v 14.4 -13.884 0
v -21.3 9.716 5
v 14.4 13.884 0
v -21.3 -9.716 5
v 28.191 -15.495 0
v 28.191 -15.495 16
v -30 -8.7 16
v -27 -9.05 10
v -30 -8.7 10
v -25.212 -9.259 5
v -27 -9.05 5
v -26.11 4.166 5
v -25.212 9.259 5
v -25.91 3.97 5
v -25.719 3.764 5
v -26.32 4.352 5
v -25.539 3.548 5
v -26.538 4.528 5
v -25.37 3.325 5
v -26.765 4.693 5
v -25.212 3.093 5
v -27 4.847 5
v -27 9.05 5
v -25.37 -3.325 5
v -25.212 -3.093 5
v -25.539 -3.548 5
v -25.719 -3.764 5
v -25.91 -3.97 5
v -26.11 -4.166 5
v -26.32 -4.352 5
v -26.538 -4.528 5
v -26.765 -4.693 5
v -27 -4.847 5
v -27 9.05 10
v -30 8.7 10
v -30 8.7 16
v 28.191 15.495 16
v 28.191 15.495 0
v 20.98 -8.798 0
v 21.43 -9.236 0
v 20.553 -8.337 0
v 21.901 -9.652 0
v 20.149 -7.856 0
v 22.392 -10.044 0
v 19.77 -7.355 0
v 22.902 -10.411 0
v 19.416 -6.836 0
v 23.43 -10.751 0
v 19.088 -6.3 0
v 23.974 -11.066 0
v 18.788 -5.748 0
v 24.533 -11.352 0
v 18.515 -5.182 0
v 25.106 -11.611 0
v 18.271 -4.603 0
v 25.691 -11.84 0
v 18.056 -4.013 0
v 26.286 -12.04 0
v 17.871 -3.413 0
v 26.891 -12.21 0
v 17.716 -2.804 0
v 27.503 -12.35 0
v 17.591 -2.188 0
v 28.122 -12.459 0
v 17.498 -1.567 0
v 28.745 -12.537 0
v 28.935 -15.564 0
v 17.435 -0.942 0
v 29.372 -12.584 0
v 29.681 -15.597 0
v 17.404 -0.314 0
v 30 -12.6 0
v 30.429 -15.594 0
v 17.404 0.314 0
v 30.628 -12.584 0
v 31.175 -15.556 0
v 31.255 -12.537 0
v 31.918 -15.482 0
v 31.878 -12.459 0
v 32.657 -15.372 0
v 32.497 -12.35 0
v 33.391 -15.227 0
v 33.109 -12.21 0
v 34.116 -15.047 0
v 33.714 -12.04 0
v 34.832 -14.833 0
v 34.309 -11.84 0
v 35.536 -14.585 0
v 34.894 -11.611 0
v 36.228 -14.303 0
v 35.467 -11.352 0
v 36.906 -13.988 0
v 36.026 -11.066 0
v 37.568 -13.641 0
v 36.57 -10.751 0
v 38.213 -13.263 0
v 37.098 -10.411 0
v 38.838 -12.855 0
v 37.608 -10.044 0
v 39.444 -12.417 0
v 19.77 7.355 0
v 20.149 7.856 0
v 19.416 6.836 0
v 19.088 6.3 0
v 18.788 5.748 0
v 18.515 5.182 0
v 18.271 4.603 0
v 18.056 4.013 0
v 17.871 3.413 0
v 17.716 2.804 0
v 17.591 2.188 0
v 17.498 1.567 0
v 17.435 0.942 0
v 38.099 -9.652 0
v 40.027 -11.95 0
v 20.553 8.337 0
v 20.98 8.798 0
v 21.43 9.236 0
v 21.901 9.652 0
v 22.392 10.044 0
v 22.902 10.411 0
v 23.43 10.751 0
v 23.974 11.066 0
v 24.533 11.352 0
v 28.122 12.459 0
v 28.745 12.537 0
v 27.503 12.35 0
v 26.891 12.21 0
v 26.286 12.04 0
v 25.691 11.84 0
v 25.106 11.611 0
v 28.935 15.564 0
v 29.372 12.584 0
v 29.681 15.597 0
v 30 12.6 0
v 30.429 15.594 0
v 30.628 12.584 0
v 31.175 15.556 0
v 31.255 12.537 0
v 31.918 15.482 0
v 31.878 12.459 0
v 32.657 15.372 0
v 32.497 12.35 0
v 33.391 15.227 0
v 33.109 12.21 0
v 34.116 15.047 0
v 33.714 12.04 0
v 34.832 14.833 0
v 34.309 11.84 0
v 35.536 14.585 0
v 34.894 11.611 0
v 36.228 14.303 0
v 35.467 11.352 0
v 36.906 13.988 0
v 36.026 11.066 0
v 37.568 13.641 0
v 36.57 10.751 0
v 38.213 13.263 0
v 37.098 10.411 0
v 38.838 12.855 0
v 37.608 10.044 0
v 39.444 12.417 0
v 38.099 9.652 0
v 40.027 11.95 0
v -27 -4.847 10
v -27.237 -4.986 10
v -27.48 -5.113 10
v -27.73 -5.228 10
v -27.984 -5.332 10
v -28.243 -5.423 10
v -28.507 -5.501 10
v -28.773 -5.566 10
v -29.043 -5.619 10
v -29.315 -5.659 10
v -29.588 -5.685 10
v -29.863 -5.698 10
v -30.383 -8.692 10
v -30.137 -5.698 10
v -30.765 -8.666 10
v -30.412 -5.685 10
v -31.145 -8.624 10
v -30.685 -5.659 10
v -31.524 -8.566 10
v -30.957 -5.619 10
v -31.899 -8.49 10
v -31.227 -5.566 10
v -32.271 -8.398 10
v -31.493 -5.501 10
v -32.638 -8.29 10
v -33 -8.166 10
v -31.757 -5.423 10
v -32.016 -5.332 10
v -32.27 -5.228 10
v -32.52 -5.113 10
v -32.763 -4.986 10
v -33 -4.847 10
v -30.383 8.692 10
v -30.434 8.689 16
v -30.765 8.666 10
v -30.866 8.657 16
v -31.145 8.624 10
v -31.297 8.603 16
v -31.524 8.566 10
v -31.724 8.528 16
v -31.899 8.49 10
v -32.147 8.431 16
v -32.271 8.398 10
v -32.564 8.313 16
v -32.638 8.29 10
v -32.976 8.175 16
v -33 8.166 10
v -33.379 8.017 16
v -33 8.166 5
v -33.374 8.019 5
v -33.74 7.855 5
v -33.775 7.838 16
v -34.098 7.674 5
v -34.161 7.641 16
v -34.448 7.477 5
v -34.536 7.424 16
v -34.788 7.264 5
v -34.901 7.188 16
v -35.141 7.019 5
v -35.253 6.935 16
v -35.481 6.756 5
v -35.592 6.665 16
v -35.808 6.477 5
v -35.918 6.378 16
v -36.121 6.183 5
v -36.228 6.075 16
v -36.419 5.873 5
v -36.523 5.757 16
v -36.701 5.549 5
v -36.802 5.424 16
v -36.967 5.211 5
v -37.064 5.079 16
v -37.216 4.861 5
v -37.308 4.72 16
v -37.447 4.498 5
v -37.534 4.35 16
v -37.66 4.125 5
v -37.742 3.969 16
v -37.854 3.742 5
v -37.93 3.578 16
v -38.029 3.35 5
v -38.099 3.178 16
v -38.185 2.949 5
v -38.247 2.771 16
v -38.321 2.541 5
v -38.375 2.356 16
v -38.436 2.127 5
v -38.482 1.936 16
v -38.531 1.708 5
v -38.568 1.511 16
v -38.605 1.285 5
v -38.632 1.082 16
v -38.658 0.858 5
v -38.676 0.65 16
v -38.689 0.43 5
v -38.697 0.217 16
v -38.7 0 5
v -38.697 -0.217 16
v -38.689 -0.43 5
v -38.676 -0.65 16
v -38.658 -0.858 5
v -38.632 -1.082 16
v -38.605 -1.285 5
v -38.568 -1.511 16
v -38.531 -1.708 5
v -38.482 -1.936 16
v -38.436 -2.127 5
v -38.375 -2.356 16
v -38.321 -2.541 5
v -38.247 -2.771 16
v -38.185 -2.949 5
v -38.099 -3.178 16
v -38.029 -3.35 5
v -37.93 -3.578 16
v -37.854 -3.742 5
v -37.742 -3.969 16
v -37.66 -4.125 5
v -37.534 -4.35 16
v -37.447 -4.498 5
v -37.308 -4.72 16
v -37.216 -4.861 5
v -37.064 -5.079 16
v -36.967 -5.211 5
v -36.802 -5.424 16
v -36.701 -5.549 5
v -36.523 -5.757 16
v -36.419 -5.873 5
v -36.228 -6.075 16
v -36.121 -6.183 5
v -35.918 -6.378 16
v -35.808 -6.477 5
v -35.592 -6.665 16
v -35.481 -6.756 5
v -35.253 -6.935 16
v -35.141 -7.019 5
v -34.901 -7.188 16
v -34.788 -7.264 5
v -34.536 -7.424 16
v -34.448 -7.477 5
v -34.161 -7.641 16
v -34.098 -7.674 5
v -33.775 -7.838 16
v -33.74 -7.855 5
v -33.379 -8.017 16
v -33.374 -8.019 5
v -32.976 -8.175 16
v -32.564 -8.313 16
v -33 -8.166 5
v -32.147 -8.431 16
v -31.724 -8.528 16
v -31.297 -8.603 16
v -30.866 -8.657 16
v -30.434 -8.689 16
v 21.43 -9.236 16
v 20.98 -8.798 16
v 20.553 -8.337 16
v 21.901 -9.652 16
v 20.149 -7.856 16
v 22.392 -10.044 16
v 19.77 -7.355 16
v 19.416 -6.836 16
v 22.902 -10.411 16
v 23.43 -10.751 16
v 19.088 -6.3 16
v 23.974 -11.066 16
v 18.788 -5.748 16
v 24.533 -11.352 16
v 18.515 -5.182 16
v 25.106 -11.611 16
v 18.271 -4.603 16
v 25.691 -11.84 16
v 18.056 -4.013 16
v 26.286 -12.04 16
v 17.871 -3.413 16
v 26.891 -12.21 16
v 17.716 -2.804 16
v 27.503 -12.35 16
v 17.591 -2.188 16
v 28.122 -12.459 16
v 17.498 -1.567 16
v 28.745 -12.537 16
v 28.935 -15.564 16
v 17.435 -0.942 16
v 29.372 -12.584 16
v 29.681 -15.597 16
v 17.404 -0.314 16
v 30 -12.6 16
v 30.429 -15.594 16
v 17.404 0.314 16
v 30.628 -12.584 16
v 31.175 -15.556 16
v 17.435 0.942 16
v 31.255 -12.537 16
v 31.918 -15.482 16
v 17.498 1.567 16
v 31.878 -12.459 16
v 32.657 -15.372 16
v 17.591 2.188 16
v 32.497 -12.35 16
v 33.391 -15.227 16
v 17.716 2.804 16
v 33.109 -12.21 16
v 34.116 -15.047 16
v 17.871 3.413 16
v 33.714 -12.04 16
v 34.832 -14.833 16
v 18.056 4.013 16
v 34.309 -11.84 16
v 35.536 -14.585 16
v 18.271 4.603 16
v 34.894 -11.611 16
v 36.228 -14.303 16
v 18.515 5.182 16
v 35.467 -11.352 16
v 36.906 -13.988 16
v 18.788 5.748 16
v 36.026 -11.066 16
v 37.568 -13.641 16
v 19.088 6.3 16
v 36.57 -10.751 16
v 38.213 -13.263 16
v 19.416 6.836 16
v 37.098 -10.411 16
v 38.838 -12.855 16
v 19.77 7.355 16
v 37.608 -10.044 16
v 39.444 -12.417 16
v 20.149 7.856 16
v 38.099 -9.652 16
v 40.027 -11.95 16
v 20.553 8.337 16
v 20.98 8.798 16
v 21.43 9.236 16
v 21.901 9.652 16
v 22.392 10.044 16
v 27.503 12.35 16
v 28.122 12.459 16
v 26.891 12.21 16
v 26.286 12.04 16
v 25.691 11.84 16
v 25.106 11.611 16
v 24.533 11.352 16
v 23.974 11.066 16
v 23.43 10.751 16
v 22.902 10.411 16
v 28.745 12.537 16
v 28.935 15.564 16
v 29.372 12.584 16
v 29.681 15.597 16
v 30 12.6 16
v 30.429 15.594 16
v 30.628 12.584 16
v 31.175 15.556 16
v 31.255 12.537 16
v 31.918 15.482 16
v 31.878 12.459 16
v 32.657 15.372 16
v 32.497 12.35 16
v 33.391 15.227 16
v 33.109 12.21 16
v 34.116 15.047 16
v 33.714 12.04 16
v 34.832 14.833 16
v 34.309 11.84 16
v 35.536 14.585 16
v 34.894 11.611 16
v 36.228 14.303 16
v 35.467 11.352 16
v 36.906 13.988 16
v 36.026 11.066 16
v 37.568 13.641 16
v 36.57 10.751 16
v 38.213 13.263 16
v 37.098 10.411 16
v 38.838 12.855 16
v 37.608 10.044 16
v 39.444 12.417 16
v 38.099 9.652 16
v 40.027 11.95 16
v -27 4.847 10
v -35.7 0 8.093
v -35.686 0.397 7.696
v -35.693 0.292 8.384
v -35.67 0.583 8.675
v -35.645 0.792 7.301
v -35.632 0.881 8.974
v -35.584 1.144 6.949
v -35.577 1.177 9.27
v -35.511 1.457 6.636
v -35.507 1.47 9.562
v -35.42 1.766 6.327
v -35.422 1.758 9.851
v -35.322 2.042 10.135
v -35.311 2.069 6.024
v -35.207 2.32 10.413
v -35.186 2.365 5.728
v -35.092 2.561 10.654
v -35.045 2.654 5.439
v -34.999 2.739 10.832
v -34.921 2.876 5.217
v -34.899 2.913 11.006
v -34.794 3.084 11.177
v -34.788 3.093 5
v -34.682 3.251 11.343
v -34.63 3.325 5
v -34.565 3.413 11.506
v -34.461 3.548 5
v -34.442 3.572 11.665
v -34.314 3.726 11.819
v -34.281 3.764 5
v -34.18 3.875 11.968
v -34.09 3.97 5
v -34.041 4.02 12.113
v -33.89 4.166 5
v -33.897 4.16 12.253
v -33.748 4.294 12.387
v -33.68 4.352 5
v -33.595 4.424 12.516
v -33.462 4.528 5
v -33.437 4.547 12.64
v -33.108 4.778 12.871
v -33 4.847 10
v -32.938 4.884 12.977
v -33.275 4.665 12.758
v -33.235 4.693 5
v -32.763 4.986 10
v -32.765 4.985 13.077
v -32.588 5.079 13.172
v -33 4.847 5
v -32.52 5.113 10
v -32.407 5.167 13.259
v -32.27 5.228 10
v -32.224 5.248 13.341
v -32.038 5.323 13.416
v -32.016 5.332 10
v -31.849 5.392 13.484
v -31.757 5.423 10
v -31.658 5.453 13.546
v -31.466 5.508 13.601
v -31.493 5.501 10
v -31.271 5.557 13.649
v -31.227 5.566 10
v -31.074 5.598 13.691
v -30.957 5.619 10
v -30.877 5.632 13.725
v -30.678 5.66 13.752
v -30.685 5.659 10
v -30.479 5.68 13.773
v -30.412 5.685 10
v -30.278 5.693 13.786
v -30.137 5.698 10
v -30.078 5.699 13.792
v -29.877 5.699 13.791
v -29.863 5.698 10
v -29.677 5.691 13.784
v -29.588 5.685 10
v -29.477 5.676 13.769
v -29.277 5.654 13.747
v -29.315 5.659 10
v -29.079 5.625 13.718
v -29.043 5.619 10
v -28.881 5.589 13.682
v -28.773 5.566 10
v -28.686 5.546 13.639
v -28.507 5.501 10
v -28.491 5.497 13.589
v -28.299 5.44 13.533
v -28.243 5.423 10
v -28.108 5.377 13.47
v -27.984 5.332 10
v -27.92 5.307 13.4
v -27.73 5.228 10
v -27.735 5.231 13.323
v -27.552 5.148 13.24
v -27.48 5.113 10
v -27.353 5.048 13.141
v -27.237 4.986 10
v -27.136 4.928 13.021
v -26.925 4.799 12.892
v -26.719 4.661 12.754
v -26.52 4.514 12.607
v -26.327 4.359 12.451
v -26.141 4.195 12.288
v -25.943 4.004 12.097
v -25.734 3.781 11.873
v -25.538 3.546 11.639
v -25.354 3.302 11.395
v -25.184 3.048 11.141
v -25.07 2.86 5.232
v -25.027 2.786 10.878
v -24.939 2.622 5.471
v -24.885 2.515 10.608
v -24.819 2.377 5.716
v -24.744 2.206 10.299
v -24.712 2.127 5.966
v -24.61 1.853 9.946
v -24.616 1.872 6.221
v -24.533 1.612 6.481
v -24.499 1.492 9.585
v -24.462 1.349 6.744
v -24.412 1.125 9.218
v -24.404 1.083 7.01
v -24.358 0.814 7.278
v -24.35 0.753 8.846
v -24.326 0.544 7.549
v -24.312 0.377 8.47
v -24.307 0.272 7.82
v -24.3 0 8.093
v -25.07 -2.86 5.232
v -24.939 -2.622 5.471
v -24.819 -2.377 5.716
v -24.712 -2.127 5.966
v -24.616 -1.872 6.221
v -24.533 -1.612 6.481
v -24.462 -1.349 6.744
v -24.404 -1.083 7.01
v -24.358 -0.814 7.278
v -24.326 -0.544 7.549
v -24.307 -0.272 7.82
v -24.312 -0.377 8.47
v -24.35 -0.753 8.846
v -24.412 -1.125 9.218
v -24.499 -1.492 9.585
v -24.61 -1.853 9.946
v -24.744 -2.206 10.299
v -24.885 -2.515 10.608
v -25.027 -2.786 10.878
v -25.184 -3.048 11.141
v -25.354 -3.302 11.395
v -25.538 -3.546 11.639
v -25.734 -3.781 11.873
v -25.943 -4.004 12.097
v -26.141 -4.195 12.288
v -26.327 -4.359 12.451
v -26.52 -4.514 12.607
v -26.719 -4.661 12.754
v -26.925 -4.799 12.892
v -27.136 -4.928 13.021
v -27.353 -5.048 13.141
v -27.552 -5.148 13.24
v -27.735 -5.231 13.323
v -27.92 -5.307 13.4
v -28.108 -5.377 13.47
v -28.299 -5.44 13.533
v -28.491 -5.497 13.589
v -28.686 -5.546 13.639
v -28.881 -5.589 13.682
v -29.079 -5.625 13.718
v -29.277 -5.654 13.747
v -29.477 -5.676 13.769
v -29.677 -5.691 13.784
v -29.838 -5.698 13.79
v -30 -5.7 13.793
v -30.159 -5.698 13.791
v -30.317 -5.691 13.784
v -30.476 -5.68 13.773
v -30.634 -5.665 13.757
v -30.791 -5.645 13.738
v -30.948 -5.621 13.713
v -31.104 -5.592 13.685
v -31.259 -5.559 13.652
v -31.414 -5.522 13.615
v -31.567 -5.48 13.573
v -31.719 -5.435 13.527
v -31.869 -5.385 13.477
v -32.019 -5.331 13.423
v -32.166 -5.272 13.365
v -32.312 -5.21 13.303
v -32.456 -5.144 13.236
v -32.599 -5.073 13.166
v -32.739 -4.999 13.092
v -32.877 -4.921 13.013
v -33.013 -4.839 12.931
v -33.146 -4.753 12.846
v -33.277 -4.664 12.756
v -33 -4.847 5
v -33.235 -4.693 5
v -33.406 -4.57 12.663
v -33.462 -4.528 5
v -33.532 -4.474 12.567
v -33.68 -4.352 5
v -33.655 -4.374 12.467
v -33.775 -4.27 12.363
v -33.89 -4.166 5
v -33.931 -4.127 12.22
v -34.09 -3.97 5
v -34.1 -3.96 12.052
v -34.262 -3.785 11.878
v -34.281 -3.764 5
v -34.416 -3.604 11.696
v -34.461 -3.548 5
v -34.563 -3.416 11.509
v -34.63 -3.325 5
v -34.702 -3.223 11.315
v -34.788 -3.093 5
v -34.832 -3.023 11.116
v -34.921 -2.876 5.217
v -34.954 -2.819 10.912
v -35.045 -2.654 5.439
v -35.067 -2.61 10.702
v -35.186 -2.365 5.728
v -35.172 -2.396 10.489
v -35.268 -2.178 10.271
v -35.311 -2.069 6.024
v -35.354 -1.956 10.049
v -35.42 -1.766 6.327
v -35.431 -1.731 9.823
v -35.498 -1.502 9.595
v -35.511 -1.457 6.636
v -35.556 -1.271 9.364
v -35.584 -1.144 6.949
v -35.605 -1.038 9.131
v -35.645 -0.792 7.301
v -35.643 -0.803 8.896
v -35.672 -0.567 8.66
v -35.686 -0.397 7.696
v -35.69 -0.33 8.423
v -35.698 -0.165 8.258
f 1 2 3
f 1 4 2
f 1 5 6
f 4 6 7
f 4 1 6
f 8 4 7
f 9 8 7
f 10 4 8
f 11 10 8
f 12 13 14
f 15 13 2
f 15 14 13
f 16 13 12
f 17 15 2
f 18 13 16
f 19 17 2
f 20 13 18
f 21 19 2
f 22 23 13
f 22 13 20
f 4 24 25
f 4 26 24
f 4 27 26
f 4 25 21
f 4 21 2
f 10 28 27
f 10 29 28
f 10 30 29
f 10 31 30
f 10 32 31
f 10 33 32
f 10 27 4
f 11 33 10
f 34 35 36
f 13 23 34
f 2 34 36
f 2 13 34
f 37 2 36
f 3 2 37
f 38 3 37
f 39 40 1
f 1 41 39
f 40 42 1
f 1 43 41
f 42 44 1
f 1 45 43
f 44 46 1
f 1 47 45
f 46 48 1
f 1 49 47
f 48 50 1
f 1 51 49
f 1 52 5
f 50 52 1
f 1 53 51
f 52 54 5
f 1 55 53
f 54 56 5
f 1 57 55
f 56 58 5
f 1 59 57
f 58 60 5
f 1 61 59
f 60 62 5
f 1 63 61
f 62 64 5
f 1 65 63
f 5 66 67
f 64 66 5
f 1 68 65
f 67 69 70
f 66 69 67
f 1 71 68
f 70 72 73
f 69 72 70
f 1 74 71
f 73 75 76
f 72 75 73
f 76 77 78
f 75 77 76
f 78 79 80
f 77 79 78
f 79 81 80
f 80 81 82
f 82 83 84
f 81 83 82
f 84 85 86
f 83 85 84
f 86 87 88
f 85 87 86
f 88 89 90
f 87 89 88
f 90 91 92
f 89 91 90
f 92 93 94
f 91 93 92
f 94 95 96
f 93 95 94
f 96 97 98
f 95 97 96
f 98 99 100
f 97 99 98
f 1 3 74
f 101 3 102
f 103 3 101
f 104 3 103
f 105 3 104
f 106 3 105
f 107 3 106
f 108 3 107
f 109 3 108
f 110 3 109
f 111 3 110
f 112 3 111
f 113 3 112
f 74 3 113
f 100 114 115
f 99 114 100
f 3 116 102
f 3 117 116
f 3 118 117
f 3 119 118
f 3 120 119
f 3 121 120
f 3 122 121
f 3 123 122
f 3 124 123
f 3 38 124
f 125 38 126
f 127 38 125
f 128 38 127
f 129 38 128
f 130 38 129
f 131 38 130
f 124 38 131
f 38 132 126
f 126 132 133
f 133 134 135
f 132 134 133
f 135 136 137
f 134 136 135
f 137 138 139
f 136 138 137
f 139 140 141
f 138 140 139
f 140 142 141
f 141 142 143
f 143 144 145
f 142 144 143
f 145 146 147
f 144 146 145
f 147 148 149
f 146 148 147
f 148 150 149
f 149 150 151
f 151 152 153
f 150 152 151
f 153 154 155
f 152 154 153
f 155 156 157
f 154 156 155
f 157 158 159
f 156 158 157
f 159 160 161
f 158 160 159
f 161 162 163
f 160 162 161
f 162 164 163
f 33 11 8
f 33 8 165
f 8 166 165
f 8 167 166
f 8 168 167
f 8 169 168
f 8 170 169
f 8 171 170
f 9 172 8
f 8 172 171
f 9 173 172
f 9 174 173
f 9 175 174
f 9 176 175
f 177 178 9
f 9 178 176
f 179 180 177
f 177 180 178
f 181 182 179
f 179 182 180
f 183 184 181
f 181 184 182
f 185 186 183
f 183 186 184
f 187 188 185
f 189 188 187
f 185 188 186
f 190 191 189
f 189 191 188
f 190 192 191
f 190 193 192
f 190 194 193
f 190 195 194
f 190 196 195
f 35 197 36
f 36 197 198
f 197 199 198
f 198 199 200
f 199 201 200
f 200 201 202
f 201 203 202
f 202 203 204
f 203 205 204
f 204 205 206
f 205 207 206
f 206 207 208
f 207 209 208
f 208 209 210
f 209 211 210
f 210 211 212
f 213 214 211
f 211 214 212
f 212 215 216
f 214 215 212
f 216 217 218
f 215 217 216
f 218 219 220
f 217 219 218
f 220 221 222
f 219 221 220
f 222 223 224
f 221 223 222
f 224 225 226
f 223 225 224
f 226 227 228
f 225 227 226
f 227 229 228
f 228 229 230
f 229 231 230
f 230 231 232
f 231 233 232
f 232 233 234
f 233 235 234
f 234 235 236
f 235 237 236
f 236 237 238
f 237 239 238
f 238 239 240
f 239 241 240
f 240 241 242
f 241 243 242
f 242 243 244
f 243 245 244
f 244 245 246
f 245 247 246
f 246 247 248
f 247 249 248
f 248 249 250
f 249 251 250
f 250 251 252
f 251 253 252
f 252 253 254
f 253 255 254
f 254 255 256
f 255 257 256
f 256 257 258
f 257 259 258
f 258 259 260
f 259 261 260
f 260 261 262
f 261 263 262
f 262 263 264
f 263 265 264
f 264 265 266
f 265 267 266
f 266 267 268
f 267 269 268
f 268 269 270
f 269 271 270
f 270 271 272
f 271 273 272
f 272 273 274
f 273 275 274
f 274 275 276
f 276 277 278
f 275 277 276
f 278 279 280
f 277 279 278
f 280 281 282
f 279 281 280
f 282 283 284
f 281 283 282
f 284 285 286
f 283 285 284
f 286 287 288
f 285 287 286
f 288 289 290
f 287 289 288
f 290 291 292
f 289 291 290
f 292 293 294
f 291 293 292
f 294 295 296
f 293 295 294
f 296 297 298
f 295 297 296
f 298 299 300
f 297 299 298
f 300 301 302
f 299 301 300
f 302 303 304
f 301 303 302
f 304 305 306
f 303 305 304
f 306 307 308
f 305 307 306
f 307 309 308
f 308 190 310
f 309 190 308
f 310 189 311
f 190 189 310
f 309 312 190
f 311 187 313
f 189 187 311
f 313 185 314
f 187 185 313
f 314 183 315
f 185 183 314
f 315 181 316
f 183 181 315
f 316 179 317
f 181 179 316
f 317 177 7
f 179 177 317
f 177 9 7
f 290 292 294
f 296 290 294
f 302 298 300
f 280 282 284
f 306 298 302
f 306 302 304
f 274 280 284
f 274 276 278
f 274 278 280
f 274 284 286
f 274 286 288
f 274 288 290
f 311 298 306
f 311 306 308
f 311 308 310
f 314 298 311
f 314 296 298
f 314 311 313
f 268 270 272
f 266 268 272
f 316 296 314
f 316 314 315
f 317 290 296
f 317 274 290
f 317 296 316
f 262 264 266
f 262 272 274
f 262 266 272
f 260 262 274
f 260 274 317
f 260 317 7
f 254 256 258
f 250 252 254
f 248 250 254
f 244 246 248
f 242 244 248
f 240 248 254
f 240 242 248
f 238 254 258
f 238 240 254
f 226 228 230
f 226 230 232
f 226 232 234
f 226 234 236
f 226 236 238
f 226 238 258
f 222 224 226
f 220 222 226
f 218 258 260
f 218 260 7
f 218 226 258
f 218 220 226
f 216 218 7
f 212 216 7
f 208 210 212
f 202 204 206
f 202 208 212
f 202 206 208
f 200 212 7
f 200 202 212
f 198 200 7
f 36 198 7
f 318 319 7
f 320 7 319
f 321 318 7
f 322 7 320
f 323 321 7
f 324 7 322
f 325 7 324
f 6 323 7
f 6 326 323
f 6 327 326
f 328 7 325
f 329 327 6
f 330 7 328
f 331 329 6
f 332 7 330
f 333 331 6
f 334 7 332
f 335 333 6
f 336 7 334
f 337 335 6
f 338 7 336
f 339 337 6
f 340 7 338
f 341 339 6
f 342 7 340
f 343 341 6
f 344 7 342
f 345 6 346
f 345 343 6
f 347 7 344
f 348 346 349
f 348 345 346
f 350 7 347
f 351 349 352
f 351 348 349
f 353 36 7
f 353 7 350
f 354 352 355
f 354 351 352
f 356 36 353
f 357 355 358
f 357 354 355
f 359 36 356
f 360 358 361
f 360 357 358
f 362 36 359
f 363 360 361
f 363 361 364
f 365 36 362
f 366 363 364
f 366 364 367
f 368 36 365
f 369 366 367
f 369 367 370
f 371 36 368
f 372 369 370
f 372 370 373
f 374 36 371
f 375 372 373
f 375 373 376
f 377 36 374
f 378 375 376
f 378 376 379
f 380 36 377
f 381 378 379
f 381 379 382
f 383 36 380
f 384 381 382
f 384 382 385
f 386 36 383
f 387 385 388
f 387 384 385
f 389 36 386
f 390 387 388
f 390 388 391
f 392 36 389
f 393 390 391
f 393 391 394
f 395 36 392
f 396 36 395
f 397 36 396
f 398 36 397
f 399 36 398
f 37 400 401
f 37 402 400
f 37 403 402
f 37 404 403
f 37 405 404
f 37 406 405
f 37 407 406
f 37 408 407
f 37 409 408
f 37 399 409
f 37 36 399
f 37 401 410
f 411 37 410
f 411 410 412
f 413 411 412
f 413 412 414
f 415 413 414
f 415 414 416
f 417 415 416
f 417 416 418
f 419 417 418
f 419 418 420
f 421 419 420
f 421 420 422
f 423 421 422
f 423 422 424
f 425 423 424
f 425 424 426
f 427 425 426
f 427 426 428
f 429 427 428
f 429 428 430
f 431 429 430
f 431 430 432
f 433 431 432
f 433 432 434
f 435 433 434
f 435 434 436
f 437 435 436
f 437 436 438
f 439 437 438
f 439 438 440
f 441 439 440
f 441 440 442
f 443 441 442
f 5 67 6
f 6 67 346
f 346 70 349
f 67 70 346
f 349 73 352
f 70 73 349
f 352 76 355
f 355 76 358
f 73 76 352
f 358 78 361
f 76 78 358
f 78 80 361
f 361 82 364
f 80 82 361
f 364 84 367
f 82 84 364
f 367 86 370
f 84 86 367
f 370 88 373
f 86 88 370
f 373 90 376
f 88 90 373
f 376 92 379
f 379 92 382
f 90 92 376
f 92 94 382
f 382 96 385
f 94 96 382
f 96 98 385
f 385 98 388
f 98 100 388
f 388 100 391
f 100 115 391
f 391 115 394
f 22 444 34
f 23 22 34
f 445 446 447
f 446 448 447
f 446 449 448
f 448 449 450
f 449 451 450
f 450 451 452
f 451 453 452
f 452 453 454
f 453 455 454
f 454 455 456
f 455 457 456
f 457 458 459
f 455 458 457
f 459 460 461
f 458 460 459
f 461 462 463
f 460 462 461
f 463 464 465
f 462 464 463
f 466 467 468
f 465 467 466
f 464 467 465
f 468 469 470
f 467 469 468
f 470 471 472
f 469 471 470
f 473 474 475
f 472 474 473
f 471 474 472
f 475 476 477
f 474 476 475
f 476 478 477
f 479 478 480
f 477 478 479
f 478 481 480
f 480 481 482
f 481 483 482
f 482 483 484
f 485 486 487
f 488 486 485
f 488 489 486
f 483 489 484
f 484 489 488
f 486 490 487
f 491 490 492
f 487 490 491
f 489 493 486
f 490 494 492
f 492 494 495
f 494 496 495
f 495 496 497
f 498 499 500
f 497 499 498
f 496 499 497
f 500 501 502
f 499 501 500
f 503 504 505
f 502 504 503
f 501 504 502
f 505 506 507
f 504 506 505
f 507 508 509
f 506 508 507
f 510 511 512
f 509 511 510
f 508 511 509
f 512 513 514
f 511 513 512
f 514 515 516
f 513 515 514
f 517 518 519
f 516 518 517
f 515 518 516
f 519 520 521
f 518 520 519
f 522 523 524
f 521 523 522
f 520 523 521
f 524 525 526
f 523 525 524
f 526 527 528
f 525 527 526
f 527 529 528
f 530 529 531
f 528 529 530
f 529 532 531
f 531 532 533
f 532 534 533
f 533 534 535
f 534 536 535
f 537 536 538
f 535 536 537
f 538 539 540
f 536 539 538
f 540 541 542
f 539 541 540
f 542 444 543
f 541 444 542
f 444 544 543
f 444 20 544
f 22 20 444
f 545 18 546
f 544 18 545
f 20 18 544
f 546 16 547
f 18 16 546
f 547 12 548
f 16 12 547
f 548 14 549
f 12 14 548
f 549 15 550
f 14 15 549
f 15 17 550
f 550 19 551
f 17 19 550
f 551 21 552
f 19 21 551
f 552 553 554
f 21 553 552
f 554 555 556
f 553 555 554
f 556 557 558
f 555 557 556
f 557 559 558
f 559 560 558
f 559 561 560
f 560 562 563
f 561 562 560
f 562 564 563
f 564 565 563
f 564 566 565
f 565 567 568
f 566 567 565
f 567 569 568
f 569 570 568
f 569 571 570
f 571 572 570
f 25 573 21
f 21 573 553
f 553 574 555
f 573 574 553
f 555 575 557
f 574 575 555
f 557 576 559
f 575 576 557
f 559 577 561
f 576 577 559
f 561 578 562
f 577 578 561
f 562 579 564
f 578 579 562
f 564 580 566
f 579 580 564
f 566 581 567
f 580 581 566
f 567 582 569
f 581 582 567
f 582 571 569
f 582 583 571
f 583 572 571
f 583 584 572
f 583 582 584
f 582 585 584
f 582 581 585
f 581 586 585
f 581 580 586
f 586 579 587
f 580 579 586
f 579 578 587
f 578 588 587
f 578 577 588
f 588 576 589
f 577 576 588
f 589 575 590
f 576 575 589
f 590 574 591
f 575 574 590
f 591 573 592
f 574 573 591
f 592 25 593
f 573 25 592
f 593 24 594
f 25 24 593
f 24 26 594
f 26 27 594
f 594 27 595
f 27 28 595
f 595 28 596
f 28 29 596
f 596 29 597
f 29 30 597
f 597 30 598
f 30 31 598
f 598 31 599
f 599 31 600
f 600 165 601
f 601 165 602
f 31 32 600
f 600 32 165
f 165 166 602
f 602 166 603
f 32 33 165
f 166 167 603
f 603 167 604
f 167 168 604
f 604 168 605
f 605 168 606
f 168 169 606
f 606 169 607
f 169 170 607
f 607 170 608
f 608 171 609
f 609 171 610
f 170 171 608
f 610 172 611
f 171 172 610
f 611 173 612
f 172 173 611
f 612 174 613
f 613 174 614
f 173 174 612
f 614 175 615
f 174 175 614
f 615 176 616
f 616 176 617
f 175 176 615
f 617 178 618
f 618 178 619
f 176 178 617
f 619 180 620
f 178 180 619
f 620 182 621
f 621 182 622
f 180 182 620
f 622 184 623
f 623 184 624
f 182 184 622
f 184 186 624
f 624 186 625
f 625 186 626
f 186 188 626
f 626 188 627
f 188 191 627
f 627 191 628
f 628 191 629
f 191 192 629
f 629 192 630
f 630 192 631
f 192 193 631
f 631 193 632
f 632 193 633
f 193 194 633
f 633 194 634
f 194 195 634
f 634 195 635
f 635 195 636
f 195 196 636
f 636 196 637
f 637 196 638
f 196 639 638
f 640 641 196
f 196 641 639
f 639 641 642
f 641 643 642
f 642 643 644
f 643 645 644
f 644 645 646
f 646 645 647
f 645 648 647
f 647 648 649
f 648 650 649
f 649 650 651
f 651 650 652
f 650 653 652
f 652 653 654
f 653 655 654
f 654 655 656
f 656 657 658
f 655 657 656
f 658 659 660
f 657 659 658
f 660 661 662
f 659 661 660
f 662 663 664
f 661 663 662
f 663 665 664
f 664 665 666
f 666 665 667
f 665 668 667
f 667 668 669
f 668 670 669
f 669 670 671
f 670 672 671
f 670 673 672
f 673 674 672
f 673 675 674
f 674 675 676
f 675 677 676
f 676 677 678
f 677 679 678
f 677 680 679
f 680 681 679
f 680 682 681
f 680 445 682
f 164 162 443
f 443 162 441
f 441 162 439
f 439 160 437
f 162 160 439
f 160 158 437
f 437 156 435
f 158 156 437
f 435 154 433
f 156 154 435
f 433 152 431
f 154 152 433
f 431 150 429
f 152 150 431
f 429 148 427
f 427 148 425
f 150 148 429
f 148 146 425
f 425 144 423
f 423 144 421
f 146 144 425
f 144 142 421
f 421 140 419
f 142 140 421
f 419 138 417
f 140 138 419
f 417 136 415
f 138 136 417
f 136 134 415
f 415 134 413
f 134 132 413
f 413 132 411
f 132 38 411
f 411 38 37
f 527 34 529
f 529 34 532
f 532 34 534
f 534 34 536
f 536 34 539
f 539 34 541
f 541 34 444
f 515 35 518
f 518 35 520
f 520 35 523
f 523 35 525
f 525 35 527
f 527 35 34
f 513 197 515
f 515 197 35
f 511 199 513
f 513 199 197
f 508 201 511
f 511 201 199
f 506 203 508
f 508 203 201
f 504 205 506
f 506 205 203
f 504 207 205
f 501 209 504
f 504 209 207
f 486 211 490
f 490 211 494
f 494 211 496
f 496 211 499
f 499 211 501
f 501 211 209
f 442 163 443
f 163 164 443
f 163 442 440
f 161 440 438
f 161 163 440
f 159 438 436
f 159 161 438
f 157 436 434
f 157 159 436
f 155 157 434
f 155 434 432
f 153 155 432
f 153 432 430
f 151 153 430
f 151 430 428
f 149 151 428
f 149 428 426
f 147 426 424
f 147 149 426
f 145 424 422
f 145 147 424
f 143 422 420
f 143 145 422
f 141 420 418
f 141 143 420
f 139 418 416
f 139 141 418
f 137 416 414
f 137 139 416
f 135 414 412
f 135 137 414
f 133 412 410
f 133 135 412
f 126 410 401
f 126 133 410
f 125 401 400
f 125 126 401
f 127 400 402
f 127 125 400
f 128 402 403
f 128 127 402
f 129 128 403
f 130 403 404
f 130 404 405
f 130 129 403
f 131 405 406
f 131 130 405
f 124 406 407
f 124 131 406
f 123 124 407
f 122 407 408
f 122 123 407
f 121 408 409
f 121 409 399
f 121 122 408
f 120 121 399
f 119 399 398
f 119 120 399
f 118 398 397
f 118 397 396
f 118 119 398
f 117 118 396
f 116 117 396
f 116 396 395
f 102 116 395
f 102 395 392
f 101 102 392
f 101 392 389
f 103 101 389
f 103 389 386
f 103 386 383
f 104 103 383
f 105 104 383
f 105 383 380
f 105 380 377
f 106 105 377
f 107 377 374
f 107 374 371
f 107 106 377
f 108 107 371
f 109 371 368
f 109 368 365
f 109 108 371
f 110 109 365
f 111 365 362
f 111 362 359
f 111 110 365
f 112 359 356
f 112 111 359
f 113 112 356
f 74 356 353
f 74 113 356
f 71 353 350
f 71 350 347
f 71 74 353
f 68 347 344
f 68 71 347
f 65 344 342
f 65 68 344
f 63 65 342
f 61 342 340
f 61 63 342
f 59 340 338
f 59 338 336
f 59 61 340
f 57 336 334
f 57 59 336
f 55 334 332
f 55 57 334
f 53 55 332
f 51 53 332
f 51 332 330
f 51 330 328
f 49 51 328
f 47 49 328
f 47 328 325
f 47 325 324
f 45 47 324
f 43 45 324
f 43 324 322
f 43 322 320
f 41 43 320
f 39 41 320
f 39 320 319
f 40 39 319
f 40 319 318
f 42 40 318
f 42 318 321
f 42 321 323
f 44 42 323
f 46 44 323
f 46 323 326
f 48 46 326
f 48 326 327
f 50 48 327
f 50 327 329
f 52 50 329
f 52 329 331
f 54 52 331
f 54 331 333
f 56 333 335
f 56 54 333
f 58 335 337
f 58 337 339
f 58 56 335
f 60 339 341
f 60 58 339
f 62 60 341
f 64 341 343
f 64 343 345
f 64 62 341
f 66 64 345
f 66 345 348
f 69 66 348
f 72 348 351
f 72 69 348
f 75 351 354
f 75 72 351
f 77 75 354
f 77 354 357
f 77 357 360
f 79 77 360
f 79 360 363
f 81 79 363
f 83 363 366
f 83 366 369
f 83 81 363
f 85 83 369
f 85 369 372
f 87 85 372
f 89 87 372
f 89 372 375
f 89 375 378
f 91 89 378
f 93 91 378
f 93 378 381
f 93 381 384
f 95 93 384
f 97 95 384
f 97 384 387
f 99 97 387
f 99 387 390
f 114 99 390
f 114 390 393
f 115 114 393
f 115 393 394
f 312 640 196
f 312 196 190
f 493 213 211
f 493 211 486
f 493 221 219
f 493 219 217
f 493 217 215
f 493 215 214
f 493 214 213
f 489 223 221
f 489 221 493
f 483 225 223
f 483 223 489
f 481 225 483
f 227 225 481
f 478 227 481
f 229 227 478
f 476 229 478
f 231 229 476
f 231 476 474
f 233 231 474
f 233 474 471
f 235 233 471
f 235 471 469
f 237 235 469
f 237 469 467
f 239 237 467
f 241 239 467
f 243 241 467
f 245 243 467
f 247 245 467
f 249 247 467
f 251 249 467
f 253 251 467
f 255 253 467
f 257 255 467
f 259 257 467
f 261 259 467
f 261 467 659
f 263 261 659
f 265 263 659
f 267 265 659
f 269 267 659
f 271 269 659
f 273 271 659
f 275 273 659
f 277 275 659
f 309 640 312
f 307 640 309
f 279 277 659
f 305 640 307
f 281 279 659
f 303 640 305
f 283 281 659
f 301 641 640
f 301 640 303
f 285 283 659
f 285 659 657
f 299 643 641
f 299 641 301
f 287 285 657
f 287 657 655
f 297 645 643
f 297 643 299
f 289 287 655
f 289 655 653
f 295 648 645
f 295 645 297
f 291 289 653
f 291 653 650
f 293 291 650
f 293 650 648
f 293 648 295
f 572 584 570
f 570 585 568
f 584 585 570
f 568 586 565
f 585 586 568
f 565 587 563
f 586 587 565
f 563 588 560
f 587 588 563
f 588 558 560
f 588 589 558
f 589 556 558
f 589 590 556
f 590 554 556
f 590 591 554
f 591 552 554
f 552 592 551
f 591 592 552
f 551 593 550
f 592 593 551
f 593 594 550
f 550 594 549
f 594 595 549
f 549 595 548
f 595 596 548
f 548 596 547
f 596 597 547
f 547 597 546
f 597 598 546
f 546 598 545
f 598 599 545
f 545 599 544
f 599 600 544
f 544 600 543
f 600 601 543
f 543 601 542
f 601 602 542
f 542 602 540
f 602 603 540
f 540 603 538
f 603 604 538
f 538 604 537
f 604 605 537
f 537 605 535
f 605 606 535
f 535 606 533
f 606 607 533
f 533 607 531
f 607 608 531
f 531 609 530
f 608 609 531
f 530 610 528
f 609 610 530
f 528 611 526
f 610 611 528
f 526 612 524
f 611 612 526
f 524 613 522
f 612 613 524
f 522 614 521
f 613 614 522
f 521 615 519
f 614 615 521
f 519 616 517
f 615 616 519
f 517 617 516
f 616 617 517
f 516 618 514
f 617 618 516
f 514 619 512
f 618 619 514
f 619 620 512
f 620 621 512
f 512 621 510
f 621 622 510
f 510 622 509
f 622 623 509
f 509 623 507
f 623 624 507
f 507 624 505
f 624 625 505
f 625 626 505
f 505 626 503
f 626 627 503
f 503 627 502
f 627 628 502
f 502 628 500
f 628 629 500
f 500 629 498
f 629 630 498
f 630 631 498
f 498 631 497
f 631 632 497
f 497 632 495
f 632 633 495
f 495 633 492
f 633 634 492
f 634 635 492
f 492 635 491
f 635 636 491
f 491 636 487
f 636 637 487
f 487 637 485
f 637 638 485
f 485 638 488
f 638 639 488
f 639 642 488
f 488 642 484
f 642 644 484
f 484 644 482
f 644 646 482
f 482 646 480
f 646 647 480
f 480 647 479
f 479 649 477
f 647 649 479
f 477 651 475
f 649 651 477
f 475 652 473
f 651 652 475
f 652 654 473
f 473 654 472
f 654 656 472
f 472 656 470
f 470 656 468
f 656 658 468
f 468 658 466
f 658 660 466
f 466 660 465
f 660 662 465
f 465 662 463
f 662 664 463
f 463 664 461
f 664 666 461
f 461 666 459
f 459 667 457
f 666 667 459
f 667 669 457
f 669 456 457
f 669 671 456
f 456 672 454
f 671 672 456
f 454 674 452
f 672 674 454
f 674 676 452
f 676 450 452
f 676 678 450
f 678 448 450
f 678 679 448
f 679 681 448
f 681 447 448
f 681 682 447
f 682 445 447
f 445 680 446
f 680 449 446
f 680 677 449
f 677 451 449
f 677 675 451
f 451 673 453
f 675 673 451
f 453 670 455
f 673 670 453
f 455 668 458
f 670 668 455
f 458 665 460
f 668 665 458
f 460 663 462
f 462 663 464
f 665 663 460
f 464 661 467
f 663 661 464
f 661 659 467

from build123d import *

# Parameters (mm, degrees)
SKETCH_R          = 12.6
PAD_DEPTH         = 16
POCKET_DEPTH      = 20
POCKET_DEPTH_BACK = 20
POCKET001_DEPTH   = 16.001
SKETCH003_R       = 5.7
PAD001_DEPTH      = 11
SKETCH004_W       = 6
SKETCH004_H       = 22.8
POCKET002_DEPTH   = 5


with BuildPart() as part:
    # Sketch → Pad (new body)
    with BuildSketch(Plane.XY):
        with BuildLine():
            ThreePointArc((-30, 8.7), (-38.7, 0), (-30, -8.7))
            Line((-30, -8.7), (28.190735, -15.494727))
            ThreePointArc((28.190735, -15.494727), (45.6, 0), (28.190735, 15.494727))
            Line((-30, 8.7), (28.190735, 15.494727))
        make_face()
        with Locations((30, 0)):
            Circle(SKETCH_R, mode=Mode.SUBTRACT)
    extrude(amount=PAD_DEPTH)

    # Sketch001 → Pocket (cut, two sides)
    with BuildSketch(Plane.XZ) as pocket_sk:
        with BuildLine():
            Line((14.4, 0), (-21.3, 5))
            Line((-21.3, 5), (-25.212, 5))
            ThreePointArc((-25.212, 5), (-30, 13.792742), (-34.788, 5))
            Line((-34.788, 5), (-38.7, 5))
            Line((-38.7, 5), (-38.7, 0))
            Line((-38.7, 0), (14.4, 0))
        make_face()
    extrude(amount=-POCKET_DEPTH, mode=Mode.SUBTRACT)
    extrude(pocket_sk.sketch, amount=POCKET_DEPTH_BACK, mode=Mode.SUBTRACT)

    # Sketch002 (on Face9 of Pocket) → Pocket001 (cut, through all)
    with BuildSketch(Plane(origin=(0, 0, 0), x_dir=(1, 0, 0), z_dir=(0, 0, -1))):
        Polygon((30, 0), (62.76, 39.041848), (62.76, -39.041848), align=None)
    extrude(amount=-POCKET001_DEPTH, mode=Mode.SUBTRACT)

    # Sketch003 (on Face7 of Pocket) → Pad001 (join)
    with BuildSketch(Plane(origin=(0, 0, 5), x_dir=(1, 0, 0), z_dir=(0, 0, -1))):
        with BuildLine():
            ThreePointArc((-30, 8.7), (-38.7, 0), (-30, -8.7))
            Line((-21.3, -9.715868), (-30, -8.7))
            Line((-21.3, 9.715868), (-21.3, -9.715868))
            Line((-30, 8.7), (-21.3, 9.715868))
        make_face()
        with Locations((-30, 0)):
            Circle(SKETCH003_R, mode=Mode.SUBTRACT)
    extrude(amount=-PAD001_DEPTH)

    # Sketch004 (on Face9 of Pad001) → Pocket002 (cut)
    with BuildSketch(Plane(origin=(0, 0, 5), x_dir=(1, 0, 0), z_dir=(0, 0, -1))):
        with Locations((-30, 0)):
            Rectangle(SKETCH004_W, SKETCH004_H)
    extrude(amount=-POCKET002_DEPTH, mode=Mode.SUBTRACT)


solid = part.part
